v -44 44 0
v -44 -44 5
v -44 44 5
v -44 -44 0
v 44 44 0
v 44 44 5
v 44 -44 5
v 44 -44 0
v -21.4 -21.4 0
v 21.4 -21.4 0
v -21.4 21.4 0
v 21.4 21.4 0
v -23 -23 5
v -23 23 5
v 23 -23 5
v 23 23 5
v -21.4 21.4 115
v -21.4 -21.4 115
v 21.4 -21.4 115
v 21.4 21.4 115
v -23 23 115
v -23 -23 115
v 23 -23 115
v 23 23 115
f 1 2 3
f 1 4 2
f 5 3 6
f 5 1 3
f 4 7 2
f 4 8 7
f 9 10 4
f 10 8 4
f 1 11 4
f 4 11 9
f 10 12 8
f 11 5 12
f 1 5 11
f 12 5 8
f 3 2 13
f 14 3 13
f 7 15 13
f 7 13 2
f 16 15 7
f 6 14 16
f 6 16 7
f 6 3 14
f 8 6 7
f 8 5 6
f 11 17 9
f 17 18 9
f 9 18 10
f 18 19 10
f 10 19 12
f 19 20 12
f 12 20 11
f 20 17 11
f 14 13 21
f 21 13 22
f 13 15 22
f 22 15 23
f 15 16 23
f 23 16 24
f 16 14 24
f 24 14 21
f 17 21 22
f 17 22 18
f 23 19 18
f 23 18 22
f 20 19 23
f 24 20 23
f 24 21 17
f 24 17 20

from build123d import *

# Parameters (mm, degrees)
SKETCH_W     = 88
SKETCH_H     = 88
PAD_DEPTH    = 5
SKETCH001_W  = 46
SKETCH001_H  = 46
PAD001_DEPTH = 110
SKETCH002_W  = 42.8
SKETCH002_H  = 42.8
POCKET_DEPTH = 115.001


with BuildPart() as part:
    # Sketch → Pad (new body)
    with BuildSketch(Plane.XY):
        Rectangle(SKETCH_W, SKETCH_H)
    extrude(amount=PAD_DEPTH)

    # Sketch001 (on Face6 of Pad) → Pad001 (join)
    with BuildSketch(Plane.XY.offset(5)):
        Rectangle(SKETCH001_W, SKETCH001_H)
    extrude(amount=PAD001_DEPTH)

    # Sketch002 (on Face11 of Pad001) → Pocket (cut, through all)
    with BuildSketch(Plane.XY.offset(115)):
        Rectangle(SKETCH002_W, SKETCH002_H)
    extrude(amount=-POCKET_DEPTH, mode=Mode.SUBTRACT)


solid = part.part
